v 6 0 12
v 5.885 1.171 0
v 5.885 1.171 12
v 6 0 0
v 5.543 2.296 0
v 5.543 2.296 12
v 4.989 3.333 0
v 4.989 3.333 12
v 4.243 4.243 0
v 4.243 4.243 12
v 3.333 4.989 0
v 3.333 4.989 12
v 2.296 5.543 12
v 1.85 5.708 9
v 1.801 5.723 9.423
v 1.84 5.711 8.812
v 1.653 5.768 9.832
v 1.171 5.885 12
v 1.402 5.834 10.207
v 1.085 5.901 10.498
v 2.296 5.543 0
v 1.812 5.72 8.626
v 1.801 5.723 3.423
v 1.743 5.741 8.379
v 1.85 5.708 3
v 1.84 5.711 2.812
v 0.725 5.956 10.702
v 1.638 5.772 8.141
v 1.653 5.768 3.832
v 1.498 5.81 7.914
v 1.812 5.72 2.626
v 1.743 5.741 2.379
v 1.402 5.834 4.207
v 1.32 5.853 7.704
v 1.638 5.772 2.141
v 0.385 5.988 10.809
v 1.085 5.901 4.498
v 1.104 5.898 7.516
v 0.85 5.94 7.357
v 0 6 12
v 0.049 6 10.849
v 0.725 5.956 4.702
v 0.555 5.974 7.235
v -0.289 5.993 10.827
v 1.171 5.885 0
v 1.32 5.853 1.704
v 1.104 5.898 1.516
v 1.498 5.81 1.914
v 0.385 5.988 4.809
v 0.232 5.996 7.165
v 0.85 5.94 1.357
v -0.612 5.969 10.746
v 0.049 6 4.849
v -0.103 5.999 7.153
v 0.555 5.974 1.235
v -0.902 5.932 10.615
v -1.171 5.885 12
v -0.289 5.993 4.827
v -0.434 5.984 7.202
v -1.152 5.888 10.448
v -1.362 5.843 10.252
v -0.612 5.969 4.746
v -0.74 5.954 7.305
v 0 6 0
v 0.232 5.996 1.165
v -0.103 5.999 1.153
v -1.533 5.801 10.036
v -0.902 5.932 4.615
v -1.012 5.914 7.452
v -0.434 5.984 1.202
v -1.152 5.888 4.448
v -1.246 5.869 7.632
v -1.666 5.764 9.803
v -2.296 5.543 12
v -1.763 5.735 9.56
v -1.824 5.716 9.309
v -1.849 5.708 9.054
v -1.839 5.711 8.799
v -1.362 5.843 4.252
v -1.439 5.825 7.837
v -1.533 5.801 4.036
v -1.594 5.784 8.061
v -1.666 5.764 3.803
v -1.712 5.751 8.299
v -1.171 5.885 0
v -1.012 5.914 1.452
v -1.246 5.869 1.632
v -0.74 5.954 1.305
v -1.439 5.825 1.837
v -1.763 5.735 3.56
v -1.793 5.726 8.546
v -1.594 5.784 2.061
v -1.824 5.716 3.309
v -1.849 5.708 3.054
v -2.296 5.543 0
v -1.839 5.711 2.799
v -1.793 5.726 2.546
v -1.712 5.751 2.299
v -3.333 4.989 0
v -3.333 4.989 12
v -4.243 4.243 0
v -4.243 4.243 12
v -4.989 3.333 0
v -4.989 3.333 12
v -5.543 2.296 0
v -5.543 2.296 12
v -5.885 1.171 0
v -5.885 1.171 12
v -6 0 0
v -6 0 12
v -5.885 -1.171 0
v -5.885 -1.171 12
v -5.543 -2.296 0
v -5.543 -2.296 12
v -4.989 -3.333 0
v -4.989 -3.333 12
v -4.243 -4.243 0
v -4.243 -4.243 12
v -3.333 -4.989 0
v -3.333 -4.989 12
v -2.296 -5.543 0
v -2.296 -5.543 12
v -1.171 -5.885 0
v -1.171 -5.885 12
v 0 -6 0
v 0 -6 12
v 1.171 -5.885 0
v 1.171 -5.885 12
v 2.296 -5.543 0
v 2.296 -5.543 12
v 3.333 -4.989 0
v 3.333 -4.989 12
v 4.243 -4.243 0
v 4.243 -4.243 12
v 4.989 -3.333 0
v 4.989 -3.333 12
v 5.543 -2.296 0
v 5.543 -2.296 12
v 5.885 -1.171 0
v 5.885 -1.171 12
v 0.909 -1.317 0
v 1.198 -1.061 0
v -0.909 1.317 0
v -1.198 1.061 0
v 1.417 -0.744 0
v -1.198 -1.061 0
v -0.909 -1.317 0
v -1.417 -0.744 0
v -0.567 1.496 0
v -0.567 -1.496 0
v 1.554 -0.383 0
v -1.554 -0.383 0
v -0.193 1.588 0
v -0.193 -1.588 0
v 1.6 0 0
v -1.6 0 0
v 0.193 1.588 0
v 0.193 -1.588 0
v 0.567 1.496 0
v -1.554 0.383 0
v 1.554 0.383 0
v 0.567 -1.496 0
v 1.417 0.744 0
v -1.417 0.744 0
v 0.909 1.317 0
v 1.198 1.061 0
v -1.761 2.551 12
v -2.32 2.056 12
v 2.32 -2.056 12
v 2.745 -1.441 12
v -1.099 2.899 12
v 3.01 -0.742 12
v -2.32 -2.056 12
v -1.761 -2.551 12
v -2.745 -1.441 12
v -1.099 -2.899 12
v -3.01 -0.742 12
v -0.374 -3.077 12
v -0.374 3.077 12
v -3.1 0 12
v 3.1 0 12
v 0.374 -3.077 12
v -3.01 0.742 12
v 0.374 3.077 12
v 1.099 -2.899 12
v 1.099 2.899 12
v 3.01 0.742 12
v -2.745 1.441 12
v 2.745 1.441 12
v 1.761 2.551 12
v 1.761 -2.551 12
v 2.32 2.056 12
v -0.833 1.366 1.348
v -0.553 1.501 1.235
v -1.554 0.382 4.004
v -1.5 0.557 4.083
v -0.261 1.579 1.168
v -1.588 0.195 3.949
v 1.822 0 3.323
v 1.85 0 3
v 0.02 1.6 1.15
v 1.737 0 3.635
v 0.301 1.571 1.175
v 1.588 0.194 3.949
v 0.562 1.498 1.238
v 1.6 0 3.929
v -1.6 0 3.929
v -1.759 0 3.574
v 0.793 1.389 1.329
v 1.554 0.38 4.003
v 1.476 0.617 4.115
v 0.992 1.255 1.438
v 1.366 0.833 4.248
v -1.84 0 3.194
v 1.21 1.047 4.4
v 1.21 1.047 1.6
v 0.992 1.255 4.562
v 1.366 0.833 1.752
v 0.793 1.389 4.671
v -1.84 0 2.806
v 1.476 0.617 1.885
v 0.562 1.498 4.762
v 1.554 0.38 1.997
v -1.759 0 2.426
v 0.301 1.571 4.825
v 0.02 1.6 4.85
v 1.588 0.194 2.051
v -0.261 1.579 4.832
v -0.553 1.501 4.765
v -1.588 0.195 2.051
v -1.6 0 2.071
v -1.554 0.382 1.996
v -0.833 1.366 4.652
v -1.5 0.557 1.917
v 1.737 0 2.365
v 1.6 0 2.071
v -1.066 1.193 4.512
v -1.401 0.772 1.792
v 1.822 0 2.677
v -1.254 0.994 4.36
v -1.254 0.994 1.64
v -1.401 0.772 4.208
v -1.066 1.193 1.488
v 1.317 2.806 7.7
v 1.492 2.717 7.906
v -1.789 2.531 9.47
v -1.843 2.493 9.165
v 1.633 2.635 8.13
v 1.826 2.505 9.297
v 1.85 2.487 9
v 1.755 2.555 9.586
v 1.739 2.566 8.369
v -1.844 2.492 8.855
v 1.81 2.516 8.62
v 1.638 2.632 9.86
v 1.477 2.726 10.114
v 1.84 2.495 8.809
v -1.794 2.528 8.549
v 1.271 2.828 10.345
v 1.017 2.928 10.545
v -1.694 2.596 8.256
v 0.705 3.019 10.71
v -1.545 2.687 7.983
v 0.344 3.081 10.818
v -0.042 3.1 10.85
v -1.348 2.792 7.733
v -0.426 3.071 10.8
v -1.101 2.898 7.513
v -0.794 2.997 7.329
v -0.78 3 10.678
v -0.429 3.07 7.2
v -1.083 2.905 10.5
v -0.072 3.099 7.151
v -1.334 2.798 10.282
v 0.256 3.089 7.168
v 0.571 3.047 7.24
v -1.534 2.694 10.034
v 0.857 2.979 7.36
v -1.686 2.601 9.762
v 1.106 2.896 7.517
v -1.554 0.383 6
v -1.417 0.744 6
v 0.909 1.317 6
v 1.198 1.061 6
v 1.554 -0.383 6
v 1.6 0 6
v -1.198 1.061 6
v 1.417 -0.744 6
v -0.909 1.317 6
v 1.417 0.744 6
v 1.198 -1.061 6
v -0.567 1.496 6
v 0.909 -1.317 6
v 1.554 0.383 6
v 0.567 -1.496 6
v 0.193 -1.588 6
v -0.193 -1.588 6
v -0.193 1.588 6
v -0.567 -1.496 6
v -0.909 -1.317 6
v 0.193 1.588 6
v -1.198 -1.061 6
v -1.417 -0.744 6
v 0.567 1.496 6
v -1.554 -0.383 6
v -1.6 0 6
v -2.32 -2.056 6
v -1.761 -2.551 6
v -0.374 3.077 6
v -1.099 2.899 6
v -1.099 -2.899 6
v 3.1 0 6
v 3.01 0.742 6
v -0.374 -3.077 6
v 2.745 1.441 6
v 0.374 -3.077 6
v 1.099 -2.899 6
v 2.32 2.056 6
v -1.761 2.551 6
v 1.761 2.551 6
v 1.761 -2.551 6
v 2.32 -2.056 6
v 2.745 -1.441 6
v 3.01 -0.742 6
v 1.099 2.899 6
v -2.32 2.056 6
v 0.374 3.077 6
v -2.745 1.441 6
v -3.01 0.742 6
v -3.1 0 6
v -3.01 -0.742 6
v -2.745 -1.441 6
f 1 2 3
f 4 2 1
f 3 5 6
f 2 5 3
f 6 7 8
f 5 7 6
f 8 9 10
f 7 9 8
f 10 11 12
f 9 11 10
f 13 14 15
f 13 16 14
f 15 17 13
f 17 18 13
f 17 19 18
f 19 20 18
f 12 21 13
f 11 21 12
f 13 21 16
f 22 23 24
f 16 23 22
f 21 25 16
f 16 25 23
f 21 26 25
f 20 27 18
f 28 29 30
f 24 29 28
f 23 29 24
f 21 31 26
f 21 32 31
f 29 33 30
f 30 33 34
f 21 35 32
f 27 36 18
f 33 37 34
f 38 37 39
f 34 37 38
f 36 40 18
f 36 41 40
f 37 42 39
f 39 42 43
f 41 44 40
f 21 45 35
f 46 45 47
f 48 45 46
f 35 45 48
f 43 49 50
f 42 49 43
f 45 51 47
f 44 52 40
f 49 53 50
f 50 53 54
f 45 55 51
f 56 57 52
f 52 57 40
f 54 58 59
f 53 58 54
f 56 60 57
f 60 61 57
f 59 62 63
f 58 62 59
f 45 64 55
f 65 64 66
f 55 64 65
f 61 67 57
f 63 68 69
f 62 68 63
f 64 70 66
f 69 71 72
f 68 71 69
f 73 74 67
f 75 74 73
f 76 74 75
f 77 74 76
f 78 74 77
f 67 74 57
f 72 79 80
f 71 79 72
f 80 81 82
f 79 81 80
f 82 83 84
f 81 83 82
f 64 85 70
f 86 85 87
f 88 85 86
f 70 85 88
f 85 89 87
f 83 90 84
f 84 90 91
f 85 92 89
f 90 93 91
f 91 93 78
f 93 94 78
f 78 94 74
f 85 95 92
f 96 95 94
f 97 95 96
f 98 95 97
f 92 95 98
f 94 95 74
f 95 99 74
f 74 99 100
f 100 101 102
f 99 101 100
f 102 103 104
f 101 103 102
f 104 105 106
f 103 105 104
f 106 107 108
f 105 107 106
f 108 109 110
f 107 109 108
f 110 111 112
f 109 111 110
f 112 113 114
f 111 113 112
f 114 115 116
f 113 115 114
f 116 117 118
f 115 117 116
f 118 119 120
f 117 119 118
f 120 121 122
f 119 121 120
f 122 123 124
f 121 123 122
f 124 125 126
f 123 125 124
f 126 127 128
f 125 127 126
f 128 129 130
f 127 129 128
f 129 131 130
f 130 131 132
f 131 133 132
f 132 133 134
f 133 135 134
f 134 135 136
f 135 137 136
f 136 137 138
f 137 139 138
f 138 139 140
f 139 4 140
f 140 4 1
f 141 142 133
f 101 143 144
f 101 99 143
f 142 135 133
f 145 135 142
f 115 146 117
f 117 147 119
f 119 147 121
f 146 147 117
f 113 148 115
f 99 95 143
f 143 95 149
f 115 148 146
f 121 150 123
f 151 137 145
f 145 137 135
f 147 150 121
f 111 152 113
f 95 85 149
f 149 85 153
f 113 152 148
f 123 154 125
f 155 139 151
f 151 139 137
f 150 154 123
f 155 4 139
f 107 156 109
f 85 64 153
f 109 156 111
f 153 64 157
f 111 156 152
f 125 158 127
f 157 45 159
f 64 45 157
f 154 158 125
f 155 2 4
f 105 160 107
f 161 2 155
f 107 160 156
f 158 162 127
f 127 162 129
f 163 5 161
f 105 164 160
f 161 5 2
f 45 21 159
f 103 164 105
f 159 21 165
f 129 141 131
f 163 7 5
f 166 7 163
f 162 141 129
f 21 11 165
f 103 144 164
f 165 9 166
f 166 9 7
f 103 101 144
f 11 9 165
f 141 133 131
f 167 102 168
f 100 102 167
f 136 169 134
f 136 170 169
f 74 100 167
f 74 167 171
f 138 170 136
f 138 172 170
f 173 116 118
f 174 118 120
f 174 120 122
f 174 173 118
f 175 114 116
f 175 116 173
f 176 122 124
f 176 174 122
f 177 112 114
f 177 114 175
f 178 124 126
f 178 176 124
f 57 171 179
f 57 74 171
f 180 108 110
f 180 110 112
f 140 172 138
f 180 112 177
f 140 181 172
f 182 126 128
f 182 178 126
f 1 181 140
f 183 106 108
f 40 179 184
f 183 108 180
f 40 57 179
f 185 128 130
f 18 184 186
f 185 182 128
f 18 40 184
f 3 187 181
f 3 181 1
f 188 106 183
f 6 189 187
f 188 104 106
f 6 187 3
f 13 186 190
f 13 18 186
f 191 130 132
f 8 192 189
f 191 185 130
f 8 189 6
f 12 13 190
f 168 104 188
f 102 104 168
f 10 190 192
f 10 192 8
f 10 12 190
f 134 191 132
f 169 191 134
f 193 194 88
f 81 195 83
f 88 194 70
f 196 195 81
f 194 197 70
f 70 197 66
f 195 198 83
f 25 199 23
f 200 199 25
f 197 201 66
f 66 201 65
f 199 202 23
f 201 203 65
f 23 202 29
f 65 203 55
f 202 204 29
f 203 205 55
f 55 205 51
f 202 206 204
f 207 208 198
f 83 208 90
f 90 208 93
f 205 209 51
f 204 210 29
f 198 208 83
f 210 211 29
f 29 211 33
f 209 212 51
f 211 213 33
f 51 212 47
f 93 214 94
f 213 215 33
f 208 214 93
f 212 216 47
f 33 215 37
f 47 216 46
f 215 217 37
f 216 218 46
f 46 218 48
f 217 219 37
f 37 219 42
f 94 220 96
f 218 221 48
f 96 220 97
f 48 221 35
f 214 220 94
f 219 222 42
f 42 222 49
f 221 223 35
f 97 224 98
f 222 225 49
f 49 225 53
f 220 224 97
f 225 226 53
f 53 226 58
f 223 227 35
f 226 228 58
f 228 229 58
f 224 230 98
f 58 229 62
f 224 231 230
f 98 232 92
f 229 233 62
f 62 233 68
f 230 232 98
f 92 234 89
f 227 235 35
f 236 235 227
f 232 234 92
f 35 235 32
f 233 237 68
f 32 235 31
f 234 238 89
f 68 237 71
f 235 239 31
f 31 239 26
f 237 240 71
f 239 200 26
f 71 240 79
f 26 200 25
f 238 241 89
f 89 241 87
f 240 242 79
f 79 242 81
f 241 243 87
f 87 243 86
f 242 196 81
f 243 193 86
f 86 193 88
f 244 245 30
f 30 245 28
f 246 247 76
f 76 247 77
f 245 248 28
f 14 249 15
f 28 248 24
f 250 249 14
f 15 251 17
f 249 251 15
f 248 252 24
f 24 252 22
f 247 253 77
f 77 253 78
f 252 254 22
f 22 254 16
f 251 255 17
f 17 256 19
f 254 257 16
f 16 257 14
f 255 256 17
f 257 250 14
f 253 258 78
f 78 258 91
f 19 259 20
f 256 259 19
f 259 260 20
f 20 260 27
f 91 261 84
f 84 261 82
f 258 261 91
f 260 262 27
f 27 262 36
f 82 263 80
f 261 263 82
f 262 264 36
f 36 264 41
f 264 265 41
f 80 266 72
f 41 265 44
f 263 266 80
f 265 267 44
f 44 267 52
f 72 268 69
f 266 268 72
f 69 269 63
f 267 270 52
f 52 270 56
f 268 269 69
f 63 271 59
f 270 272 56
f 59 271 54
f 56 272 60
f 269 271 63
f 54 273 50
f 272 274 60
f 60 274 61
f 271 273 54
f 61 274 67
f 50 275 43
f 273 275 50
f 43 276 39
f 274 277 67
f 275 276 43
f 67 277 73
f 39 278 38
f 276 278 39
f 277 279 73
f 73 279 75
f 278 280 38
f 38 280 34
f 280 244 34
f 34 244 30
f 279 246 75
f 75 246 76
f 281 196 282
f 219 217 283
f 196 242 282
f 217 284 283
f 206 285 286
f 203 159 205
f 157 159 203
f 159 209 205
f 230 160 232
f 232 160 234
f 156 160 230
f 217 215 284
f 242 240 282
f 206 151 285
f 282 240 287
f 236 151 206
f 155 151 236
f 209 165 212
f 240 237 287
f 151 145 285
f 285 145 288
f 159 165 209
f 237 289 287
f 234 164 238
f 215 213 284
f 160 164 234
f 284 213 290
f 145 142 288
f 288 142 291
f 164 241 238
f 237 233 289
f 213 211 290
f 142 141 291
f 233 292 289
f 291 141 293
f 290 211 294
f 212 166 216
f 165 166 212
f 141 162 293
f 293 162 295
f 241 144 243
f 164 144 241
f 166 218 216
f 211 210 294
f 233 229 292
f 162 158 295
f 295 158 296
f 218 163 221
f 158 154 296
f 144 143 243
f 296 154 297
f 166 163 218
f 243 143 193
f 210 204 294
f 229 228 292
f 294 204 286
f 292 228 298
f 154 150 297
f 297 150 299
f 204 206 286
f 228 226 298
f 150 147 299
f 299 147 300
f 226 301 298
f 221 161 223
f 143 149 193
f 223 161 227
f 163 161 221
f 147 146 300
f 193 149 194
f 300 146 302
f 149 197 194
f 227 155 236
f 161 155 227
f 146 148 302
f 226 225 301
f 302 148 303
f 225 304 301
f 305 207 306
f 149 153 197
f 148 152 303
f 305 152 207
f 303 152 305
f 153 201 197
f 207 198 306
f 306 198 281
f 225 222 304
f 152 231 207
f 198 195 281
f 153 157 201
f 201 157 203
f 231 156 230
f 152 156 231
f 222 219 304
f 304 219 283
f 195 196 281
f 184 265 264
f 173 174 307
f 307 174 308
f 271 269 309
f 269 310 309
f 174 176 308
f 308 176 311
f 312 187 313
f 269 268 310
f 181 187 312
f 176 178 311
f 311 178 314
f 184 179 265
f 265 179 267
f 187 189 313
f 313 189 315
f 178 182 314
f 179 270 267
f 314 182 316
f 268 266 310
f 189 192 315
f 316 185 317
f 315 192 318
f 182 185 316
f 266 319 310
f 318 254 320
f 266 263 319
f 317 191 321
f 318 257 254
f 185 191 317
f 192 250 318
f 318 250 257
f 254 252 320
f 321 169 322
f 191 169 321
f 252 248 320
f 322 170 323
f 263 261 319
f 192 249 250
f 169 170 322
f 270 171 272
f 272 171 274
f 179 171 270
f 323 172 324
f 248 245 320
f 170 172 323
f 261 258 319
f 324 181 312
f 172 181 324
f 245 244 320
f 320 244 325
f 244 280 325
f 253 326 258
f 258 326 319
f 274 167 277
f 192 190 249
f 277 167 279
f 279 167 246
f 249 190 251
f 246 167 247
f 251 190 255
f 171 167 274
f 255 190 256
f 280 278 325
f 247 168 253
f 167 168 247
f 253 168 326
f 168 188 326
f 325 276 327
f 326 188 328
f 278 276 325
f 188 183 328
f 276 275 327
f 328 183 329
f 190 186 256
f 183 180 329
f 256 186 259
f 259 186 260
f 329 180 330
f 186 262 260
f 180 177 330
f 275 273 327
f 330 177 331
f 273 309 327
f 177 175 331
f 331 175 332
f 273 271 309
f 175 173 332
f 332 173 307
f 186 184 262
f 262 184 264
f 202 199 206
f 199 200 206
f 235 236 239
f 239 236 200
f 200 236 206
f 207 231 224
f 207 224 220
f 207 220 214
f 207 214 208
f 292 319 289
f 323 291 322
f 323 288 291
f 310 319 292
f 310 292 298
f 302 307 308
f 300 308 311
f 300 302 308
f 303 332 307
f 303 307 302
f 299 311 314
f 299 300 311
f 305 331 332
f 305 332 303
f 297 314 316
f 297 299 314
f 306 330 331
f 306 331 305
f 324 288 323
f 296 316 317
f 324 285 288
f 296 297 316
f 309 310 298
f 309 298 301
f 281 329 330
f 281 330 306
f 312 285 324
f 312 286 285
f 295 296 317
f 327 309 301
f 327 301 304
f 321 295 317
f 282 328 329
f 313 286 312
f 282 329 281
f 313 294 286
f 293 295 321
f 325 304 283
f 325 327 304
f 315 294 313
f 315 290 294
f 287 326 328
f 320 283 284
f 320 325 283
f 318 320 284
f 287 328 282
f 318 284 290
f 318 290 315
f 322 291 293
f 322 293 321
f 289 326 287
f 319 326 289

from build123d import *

# Parameters (mm, degrees)
SKETCH_R        = 6
PAD_DEPTH       = 12
SKETCH001_R     = 3.1
POCKET_DEPTH    = 6
SKETCH002_R     = 1.6
POCKET001_DEPTH = 6
SKETCH003_R     = 1.85
POCKET002_DEPTH = 6.001


with BuildPart() as part:
    # Sketch → Pad (new body)
    with BuildSketch(Plane.XY):
        Circle(SKETCH_R)
    extrude(amount=PAD_DEPTH)

    # Sketch001 (on Face3 of Pad) → Pocket (cut)
    with BuildSketch(Plane.XY.offset(12)):
        Circle(SKETCH001_R)
    extrude(amount=-POCKET_DEPTH, mode=Mode.SUBTRACT)

    # Sketch002 (on Face2 of Pocket) → Pocket001 (cut)
    with BuildSketch(Plane(origin=(0, 0, 0), x_dir=(1, 0, 0), z_dir=(0, 0, -1))):
        Circle(SKETCH002_R)
    extrude(amount=-POCKET001_DEPTH, mode=Mode.SUBTRACT)

    # Sketch003 → Pocket002 (cut, through all)
    with BuildSketch(Plane.XZ):
        with Locations((0, 9)):
            Circle(SKETCH003_R)
        with Locations((0, 3)):
            Circle(SKETCH003_R)
    extrude(amount=-POCKET002_DEPTH, mode=Mode.SUBTRACT)


solid = part.part
